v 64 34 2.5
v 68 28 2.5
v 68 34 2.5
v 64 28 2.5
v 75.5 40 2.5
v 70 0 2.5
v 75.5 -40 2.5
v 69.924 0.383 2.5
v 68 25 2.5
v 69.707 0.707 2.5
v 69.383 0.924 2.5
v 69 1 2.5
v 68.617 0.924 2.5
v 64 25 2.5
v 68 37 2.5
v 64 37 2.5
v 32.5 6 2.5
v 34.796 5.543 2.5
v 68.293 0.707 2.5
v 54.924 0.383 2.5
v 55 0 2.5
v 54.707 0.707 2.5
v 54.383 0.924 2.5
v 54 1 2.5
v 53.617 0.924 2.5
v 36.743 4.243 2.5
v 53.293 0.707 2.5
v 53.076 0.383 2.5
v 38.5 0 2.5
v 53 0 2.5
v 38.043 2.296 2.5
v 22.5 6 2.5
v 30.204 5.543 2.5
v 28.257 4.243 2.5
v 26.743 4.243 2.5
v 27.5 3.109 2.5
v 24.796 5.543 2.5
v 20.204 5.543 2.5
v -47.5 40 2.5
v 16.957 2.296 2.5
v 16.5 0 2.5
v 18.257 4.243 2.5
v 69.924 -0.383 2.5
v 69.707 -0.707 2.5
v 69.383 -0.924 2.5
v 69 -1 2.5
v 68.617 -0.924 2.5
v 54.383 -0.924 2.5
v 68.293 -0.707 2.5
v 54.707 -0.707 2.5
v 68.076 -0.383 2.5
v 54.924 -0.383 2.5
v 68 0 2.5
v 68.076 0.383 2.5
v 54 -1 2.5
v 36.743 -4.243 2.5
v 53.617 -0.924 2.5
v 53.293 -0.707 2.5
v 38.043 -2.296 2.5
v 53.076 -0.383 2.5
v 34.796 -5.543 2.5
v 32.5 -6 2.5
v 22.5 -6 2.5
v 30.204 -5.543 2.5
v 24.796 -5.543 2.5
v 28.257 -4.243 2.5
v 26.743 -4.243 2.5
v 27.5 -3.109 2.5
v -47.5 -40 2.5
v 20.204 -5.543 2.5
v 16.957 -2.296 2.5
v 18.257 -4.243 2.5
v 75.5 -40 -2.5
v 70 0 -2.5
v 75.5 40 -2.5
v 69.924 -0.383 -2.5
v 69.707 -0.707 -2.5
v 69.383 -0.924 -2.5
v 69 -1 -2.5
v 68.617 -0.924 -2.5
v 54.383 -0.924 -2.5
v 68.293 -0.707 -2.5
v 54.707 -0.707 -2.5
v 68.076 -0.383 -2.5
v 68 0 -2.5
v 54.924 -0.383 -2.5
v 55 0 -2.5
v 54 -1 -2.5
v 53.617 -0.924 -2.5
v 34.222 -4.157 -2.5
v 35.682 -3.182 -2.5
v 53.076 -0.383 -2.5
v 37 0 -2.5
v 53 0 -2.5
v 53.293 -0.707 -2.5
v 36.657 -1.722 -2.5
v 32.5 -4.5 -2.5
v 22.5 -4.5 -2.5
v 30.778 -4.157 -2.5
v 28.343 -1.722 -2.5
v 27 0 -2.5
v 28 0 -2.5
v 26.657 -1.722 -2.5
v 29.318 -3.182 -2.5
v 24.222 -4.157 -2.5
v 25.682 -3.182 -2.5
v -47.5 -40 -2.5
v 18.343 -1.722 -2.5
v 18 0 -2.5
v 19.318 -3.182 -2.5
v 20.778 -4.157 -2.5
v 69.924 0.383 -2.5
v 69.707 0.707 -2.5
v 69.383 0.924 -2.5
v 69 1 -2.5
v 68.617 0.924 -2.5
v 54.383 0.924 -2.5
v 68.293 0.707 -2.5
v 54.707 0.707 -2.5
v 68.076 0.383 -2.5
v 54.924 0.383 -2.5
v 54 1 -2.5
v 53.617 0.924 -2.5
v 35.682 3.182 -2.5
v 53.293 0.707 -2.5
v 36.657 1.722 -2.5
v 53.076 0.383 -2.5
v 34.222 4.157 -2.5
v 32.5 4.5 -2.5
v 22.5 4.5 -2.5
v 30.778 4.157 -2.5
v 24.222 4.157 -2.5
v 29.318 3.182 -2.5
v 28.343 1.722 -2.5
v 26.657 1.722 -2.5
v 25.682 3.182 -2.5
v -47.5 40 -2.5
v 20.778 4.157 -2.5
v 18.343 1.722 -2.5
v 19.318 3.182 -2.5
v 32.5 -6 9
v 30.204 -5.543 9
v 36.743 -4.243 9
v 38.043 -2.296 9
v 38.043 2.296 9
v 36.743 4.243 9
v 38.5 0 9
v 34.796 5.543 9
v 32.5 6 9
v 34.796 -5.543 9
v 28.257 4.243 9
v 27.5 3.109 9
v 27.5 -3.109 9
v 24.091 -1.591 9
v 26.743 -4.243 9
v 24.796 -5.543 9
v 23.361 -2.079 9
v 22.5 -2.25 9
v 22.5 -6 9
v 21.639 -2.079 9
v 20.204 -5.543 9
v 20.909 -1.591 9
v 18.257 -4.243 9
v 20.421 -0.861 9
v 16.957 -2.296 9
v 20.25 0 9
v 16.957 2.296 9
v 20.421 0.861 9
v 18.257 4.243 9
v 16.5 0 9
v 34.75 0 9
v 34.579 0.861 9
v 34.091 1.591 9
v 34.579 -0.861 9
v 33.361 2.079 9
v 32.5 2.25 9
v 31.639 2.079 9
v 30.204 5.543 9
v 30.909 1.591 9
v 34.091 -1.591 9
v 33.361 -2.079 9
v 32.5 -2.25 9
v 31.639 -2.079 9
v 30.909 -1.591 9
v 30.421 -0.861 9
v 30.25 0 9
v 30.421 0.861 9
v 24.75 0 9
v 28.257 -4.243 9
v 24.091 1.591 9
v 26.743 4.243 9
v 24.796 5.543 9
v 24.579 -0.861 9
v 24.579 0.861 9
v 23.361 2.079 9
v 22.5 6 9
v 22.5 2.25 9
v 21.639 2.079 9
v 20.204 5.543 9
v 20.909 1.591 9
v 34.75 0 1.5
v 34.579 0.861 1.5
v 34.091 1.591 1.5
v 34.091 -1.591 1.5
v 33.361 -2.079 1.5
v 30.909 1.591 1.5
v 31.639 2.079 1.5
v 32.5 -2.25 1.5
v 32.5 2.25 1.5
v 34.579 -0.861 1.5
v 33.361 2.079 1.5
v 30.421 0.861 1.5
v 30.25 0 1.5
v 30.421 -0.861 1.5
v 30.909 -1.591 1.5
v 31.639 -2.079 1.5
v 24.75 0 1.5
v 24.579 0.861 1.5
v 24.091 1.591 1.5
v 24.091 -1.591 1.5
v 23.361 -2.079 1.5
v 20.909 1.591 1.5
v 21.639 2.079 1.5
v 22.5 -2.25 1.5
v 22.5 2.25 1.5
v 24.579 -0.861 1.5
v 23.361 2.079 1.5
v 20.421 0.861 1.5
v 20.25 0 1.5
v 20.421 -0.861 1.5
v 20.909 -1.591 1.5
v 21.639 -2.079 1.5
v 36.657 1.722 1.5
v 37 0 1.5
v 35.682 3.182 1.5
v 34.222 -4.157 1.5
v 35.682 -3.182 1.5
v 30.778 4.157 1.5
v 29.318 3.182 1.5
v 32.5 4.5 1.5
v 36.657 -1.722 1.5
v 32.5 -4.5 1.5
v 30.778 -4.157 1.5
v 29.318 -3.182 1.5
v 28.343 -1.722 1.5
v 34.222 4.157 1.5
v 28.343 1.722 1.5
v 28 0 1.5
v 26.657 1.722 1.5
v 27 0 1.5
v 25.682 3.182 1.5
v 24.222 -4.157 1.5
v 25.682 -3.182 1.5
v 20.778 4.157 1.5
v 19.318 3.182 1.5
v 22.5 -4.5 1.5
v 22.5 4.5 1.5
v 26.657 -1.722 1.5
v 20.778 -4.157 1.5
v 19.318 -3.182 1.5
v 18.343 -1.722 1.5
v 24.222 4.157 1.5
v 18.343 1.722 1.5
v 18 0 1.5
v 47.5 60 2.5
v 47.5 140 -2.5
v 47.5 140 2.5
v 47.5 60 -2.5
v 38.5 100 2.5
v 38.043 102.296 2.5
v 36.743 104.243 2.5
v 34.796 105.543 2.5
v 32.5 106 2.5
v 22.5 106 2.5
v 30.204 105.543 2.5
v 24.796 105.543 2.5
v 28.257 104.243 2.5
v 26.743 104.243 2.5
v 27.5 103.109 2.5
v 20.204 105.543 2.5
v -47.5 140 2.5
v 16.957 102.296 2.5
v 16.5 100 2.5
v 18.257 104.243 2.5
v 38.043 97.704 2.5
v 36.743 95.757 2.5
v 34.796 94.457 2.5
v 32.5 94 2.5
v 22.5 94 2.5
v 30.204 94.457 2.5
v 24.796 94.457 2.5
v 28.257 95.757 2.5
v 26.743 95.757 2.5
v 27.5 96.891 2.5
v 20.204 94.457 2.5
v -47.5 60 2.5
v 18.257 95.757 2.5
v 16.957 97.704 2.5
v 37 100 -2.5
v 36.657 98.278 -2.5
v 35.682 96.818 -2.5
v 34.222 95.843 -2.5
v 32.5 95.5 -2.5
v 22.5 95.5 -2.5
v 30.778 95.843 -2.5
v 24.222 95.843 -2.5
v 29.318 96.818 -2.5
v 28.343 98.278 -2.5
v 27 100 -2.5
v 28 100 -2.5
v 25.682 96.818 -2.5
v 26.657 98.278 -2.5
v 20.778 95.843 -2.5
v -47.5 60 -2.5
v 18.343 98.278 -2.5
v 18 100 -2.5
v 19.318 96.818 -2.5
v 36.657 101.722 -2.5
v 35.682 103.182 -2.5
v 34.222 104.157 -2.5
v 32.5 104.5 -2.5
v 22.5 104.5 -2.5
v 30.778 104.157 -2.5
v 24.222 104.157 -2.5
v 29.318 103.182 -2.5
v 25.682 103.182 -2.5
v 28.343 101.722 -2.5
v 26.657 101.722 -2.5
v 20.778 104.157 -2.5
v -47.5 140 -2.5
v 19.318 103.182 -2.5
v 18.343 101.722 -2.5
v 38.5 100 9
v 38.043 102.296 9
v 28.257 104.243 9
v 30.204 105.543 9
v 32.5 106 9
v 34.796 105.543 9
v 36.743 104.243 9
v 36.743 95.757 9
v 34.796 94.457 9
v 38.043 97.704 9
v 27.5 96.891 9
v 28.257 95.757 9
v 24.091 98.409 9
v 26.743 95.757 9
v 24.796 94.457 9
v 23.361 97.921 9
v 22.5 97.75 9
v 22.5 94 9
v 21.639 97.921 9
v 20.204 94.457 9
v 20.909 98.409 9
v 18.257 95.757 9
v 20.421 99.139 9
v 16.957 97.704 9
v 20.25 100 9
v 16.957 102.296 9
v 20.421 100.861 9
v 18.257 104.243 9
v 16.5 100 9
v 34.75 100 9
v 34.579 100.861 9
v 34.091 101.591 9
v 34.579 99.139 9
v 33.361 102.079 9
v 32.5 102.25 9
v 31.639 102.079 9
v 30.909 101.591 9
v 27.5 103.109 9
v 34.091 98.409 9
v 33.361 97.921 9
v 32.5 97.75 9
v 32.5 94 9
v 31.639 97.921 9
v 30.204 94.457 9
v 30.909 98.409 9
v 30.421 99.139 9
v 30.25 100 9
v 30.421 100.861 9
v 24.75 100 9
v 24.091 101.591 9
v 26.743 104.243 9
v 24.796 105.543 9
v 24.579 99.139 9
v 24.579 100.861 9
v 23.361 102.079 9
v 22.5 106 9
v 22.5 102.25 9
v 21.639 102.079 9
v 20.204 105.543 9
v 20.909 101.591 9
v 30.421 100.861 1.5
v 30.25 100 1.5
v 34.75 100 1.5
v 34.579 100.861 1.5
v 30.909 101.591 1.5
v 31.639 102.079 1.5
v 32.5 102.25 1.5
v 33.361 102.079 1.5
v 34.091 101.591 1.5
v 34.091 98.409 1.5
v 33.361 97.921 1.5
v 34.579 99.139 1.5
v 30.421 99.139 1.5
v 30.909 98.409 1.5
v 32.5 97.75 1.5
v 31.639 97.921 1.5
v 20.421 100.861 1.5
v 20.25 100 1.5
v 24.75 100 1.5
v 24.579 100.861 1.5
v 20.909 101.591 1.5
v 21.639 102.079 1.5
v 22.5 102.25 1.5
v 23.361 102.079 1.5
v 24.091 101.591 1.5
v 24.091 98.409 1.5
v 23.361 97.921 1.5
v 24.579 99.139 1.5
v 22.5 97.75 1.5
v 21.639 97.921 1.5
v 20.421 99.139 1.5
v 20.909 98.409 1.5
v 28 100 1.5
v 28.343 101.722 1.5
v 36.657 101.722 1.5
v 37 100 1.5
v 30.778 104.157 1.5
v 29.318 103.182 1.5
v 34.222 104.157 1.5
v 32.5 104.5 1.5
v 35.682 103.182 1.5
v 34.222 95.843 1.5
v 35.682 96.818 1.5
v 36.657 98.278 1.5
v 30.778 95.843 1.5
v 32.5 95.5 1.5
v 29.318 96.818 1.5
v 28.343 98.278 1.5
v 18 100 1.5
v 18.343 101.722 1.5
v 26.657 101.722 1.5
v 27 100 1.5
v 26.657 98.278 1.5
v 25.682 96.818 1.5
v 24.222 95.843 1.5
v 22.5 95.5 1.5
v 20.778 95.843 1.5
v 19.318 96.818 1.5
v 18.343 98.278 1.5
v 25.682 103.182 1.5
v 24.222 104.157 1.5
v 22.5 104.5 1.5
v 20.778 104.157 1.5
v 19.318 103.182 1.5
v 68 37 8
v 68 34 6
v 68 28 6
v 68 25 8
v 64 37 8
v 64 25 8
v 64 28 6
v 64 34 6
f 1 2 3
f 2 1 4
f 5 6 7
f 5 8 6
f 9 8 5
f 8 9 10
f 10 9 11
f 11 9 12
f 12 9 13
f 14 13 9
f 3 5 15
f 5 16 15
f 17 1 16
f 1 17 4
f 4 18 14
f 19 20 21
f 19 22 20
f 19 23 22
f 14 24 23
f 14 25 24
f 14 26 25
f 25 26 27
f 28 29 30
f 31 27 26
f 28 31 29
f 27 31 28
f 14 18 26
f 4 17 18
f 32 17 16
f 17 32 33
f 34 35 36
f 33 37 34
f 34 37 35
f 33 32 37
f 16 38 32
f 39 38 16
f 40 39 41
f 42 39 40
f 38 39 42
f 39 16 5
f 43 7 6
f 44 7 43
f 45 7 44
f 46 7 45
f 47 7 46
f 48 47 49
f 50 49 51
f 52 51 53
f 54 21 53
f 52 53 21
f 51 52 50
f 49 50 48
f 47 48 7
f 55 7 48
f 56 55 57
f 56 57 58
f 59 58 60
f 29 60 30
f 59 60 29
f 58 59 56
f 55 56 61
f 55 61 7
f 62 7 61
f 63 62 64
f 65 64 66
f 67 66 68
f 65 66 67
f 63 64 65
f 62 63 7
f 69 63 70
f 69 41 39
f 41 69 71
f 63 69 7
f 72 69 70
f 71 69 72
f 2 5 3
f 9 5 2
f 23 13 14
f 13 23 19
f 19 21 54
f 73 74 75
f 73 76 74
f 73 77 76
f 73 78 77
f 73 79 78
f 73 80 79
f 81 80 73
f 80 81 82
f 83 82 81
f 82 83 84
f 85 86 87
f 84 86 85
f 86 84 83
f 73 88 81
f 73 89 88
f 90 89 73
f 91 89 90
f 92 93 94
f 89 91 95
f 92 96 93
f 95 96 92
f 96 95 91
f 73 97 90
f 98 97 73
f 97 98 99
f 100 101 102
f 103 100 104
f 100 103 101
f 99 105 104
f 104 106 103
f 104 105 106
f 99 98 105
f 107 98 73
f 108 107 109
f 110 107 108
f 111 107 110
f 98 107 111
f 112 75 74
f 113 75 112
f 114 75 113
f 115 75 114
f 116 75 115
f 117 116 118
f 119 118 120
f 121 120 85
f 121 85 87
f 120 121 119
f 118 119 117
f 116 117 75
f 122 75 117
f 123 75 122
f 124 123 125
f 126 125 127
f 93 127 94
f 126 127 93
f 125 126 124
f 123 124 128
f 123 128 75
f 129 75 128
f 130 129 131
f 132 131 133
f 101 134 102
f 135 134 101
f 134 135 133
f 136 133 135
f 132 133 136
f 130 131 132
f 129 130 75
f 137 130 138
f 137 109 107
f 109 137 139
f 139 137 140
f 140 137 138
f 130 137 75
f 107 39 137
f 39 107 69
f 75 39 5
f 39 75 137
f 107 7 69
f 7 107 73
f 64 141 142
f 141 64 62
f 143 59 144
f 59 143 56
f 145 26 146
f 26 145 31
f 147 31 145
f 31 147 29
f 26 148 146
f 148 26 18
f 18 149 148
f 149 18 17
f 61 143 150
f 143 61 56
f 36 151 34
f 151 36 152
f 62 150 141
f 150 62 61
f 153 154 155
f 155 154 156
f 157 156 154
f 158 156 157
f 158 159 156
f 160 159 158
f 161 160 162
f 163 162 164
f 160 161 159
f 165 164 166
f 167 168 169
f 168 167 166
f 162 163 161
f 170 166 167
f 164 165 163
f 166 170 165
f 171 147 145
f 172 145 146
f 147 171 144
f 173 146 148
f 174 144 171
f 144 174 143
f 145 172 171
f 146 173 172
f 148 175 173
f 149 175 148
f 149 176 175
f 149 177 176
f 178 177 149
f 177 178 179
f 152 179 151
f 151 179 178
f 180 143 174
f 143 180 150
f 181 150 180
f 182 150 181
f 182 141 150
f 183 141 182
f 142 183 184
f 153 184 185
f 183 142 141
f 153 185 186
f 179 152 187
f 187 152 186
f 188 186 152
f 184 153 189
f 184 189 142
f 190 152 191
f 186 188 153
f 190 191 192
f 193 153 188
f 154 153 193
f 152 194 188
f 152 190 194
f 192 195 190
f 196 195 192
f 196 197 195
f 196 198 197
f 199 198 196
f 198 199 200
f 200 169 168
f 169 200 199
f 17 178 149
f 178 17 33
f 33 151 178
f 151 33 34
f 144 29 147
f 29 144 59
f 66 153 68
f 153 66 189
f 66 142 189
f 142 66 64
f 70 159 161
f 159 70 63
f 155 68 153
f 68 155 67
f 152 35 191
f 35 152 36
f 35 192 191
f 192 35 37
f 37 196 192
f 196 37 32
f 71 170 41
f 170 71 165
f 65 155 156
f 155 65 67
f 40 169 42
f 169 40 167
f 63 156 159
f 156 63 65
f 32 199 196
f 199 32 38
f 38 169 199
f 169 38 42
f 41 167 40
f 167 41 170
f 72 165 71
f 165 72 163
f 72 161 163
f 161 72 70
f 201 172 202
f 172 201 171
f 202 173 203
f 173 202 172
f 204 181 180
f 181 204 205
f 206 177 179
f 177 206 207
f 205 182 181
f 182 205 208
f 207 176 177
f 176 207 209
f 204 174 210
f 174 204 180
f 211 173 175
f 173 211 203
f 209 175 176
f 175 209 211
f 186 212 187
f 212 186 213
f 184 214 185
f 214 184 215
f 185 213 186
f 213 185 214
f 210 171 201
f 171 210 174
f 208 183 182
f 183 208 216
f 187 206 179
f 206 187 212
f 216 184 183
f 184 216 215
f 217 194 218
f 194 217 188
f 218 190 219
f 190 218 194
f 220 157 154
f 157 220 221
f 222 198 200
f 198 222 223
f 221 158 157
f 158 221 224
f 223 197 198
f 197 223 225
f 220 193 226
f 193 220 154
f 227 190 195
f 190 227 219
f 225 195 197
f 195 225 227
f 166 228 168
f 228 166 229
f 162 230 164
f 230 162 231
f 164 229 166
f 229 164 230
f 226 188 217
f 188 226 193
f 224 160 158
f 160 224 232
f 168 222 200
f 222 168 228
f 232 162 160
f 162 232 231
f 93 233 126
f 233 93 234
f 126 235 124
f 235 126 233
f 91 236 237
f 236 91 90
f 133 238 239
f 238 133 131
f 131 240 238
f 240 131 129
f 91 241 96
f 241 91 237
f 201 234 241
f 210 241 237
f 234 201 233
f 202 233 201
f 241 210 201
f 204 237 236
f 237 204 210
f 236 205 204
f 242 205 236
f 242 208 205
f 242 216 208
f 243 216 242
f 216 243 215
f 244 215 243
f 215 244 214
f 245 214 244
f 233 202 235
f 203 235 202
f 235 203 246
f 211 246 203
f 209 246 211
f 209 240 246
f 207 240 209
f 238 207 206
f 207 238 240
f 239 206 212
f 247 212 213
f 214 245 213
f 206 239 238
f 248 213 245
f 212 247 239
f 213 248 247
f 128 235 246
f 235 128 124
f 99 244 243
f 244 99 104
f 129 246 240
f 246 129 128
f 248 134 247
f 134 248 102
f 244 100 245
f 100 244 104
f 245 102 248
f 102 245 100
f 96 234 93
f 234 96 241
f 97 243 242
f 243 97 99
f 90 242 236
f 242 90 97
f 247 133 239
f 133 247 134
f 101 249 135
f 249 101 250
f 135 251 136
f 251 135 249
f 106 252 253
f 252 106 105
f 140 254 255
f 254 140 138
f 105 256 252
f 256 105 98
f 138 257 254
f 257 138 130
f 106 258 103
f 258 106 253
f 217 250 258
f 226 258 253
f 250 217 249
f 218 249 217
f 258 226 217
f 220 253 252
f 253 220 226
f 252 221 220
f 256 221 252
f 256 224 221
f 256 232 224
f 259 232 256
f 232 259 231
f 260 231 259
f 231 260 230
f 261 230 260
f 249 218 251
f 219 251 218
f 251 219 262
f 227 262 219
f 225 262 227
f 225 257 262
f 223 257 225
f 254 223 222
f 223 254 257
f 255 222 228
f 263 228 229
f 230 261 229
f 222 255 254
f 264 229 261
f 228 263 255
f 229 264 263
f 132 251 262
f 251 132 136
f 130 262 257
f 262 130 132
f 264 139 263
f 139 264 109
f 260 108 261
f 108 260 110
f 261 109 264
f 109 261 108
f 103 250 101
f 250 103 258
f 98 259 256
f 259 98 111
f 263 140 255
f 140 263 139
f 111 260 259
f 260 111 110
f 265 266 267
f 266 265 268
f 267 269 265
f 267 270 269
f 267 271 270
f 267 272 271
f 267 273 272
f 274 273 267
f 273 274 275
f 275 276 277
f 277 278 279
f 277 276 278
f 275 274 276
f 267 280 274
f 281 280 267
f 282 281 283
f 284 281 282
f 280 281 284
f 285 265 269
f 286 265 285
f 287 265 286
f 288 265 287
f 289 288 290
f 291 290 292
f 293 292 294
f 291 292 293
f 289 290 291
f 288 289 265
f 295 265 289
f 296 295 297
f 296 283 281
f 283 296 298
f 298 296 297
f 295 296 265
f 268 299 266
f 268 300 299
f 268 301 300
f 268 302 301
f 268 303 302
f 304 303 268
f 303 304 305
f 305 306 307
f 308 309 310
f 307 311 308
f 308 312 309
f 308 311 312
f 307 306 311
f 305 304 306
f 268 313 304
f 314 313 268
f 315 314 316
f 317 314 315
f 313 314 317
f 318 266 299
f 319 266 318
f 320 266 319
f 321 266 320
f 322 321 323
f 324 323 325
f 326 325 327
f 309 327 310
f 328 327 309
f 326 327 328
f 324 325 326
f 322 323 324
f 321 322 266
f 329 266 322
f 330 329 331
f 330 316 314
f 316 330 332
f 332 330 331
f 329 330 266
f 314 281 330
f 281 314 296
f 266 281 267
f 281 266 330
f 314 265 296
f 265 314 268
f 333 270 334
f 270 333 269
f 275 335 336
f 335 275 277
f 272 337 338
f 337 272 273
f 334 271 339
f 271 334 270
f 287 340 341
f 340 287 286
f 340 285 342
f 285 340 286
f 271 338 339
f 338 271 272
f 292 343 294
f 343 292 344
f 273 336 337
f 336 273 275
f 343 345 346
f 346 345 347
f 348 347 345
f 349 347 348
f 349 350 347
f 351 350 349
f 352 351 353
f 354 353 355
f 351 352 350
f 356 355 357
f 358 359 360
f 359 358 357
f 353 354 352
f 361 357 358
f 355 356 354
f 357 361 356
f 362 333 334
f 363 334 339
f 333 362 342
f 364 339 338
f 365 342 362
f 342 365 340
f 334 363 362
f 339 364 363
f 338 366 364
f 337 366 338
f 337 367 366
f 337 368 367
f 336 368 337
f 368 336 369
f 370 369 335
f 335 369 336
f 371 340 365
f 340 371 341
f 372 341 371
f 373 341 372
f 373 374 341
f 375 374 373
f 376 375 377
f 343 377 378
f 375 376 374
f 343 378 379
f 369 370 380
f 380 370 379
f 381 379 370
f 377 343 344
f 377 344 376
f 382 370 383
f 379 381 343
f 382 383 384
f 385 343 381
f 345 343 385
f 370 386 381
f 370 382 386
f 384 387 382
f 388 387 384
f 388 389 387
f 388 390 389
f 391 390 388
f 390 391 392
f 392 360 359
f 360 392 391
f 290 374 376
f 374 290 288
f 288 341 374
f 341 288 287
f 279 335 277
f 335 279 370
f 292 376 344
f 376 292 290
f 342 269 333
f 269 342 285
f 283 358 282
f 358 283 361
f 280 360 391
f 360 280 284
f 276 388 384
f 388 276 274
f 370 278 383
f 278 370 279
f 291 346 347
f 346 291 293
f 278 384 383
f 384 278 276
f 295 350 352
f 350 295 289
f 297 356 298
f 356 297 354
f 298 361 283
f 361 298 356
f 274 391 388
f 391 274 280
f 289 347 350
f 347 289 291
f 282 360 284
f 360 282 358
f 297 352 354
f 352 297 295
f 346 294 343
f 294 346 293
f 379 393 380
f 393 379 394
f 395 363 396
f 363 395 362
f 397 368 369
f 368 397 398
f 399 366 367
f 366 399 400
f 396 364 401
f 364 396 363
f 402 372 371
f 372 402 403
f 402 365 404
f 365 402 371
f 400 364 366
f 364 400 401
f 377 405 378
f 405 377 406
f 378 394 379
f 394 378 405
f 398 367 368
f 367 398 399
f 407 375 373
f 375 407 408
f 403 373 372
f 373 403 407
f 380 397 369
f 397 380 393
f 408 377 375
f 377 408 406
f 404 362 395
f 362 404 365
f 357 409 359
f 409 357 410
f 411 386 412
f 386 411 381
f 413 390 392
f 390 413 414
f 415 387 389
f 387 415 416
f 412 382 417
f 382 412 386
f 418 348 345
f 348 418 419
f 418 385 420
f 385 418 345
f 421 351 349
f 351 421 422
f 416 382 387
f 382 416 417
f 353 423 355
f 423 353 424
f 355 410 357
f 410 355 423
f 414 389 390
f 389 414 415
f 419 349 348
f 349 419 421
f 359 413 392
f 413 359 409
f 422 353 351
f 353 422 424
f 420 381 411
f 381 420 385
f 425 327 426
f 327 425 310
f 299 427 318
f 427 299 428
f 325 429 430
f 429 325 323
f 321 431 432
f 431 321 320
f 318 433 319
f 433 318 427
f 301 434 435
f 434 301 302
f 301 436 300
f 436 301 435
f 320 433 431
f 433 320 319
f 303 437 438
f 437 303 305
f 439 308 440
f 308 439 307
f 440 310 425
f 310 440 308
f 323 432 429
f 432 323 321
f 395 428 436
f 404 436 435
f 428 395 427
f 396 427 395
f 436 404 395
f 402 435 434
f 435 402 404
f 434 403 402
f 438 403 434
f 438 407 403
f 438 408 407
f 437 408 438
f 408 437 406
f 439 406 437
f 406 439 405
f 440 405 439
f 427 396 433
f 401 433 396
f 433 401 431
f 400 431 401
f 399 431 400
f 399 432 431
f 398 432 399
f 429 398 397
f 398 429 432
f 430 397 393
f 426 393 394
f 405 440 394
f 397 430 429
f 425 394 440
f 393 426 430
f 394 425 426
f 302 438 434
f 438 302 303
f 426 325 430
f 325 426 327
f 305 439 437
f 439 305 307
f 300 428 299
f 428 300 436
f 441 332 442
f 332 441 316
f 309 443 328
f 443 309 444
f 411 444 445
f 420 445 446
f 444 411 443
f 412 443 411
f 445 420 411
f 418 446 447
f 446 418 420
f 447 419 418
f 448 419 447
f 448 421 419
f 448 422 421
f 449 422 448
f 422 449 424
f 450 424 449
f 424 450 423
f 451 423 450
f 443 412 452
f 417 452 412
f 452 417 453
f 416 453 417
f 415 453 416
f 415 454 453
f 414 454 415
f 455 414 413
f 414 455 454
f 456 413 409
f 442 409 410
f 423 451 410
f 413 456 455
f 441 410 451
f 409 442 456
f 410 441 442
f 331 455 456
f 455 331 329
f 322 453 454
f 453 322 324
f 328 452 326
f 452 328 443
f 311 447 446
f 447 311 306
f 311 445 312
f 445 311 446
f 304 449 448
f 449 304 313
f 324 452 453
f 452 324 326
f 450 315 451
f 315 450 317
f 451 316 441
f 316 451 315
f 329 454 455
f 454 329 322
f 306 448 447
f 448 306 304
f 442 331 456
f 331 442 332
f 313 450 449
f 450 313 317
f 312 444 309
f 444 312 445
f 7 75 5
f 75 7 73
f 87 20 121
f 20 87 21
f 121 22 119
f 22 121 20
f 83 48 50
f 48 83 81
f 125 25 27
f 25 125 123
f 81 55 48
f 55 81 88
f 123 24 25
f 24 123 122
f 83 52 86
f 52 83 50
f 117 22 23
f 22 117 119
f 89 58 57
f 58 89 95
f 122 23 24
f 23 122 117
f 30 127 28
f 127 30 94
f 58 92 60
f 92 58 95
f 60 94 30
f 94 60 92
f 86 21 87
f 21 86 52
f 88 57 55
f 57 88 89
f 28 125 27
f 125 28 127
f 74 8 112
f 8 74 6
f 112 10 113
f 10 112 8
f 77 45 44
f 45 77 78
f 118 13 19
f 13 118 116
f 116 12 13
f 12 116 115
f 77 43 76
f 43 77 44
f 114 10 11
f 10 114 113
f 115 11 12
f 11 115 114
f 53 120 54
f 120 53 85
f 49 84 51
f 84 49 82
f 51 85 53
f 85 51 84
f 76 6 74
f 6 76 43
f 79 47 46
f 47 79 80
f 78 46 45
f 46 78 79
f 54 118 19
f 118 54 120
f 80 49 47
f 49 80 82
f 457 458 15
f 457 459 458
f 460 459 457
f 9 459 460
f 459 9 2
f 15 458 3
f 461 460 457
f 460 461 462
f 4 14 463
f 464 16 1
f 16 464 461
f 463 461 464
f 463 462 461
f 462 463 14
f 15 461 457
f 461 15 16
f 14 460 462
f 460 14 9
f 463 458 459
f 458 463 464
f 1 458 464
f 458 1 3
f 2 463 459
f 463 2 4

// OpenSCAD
rpost = 6;
hpost = 8;
rhole = 2.25;
rscrhead = 4.5;
sep = 10;
w = 95;
l = 80;
t = 5;
$fn = 16;
hoffset = w/2 - 15;
hx_ext = 28;


difference(){
    union(){
        cube([w,l,t], center = true);
        translate([hoffset,0,t]) cylinder(h = hpost, r = rpost, center = true);
        translate([hoffset-sep,0,t]) cylinder(h = hpost, r = rpost, center = true);
    }
    
    translate([hoffset, 0,0]) cylinder(h = hpost*4, r = rhole, center = true);
        translate([hoffset-sep, 0,0]) cylinder(h = hpost*4, r = rhole, center = true);
    
    translate([hoffset, 0,-t/2]) cylinder(h = 8, r = rscrhead, center = true);
    translate([hoffset-sep, 0,-t/2]) cylinder(h = 8, r = rscrhead, center = true);
}


difference(){
    union(){
        translate([0, 100, 0]) cube([w,l,t], center = true);
        translate([hoffset,100,t]) cylinder(h = hpost, r = rpost, center = true);
        translate([hoffset-sep,100,t]) cylinder(h = hpost, r = rpost, center = true);
    }
    
    translate([hoffset, 100,0]) cylinder(h = hpost*4, r = rhole, center = true);
        translate([hoffset-sep, 100,0]) cylinder(h = hpost*4, r = rhole, center = true);
    
    translate([hoffset, 100,-t/2]) cylinder(h = 8, r = rscrhead, center = true);
    translate([hoffset-sep, 100,-t/2]) cylinder(h = 8, r = rscrhead, center = true);
}


//add an extension on the back of one of the plates to accomodate the hx711
difference(){
    translate([w/2+hx_ext/2, 0, 0]) cube([hx_ext, l,t], center = true);
    
     translate([w/2+hx_ext/2-7.5,0,-3]) cylinder(h = 6, r = 1);
    
    translate([w/2+hx_ext/2+7.5,0,-3]) cylinder(h = 6, r = 1);

}

    difference(){
        translate([w/2+hx_ext/2+2.5,25,0]) cube([4,12,8]);
        translate([w/2+hx_ext/2+1.5,28,2]) cube([6,6,4]);
    }

//    difference(){
//        translate([w/2+hx_ext/2-2.5,25,0]) cube([2,10,8]);
//        translate([w/2+hx_ext/2-3.5,27,2]) cube([4,6,4]);
//    }













hx_ext = 28;
